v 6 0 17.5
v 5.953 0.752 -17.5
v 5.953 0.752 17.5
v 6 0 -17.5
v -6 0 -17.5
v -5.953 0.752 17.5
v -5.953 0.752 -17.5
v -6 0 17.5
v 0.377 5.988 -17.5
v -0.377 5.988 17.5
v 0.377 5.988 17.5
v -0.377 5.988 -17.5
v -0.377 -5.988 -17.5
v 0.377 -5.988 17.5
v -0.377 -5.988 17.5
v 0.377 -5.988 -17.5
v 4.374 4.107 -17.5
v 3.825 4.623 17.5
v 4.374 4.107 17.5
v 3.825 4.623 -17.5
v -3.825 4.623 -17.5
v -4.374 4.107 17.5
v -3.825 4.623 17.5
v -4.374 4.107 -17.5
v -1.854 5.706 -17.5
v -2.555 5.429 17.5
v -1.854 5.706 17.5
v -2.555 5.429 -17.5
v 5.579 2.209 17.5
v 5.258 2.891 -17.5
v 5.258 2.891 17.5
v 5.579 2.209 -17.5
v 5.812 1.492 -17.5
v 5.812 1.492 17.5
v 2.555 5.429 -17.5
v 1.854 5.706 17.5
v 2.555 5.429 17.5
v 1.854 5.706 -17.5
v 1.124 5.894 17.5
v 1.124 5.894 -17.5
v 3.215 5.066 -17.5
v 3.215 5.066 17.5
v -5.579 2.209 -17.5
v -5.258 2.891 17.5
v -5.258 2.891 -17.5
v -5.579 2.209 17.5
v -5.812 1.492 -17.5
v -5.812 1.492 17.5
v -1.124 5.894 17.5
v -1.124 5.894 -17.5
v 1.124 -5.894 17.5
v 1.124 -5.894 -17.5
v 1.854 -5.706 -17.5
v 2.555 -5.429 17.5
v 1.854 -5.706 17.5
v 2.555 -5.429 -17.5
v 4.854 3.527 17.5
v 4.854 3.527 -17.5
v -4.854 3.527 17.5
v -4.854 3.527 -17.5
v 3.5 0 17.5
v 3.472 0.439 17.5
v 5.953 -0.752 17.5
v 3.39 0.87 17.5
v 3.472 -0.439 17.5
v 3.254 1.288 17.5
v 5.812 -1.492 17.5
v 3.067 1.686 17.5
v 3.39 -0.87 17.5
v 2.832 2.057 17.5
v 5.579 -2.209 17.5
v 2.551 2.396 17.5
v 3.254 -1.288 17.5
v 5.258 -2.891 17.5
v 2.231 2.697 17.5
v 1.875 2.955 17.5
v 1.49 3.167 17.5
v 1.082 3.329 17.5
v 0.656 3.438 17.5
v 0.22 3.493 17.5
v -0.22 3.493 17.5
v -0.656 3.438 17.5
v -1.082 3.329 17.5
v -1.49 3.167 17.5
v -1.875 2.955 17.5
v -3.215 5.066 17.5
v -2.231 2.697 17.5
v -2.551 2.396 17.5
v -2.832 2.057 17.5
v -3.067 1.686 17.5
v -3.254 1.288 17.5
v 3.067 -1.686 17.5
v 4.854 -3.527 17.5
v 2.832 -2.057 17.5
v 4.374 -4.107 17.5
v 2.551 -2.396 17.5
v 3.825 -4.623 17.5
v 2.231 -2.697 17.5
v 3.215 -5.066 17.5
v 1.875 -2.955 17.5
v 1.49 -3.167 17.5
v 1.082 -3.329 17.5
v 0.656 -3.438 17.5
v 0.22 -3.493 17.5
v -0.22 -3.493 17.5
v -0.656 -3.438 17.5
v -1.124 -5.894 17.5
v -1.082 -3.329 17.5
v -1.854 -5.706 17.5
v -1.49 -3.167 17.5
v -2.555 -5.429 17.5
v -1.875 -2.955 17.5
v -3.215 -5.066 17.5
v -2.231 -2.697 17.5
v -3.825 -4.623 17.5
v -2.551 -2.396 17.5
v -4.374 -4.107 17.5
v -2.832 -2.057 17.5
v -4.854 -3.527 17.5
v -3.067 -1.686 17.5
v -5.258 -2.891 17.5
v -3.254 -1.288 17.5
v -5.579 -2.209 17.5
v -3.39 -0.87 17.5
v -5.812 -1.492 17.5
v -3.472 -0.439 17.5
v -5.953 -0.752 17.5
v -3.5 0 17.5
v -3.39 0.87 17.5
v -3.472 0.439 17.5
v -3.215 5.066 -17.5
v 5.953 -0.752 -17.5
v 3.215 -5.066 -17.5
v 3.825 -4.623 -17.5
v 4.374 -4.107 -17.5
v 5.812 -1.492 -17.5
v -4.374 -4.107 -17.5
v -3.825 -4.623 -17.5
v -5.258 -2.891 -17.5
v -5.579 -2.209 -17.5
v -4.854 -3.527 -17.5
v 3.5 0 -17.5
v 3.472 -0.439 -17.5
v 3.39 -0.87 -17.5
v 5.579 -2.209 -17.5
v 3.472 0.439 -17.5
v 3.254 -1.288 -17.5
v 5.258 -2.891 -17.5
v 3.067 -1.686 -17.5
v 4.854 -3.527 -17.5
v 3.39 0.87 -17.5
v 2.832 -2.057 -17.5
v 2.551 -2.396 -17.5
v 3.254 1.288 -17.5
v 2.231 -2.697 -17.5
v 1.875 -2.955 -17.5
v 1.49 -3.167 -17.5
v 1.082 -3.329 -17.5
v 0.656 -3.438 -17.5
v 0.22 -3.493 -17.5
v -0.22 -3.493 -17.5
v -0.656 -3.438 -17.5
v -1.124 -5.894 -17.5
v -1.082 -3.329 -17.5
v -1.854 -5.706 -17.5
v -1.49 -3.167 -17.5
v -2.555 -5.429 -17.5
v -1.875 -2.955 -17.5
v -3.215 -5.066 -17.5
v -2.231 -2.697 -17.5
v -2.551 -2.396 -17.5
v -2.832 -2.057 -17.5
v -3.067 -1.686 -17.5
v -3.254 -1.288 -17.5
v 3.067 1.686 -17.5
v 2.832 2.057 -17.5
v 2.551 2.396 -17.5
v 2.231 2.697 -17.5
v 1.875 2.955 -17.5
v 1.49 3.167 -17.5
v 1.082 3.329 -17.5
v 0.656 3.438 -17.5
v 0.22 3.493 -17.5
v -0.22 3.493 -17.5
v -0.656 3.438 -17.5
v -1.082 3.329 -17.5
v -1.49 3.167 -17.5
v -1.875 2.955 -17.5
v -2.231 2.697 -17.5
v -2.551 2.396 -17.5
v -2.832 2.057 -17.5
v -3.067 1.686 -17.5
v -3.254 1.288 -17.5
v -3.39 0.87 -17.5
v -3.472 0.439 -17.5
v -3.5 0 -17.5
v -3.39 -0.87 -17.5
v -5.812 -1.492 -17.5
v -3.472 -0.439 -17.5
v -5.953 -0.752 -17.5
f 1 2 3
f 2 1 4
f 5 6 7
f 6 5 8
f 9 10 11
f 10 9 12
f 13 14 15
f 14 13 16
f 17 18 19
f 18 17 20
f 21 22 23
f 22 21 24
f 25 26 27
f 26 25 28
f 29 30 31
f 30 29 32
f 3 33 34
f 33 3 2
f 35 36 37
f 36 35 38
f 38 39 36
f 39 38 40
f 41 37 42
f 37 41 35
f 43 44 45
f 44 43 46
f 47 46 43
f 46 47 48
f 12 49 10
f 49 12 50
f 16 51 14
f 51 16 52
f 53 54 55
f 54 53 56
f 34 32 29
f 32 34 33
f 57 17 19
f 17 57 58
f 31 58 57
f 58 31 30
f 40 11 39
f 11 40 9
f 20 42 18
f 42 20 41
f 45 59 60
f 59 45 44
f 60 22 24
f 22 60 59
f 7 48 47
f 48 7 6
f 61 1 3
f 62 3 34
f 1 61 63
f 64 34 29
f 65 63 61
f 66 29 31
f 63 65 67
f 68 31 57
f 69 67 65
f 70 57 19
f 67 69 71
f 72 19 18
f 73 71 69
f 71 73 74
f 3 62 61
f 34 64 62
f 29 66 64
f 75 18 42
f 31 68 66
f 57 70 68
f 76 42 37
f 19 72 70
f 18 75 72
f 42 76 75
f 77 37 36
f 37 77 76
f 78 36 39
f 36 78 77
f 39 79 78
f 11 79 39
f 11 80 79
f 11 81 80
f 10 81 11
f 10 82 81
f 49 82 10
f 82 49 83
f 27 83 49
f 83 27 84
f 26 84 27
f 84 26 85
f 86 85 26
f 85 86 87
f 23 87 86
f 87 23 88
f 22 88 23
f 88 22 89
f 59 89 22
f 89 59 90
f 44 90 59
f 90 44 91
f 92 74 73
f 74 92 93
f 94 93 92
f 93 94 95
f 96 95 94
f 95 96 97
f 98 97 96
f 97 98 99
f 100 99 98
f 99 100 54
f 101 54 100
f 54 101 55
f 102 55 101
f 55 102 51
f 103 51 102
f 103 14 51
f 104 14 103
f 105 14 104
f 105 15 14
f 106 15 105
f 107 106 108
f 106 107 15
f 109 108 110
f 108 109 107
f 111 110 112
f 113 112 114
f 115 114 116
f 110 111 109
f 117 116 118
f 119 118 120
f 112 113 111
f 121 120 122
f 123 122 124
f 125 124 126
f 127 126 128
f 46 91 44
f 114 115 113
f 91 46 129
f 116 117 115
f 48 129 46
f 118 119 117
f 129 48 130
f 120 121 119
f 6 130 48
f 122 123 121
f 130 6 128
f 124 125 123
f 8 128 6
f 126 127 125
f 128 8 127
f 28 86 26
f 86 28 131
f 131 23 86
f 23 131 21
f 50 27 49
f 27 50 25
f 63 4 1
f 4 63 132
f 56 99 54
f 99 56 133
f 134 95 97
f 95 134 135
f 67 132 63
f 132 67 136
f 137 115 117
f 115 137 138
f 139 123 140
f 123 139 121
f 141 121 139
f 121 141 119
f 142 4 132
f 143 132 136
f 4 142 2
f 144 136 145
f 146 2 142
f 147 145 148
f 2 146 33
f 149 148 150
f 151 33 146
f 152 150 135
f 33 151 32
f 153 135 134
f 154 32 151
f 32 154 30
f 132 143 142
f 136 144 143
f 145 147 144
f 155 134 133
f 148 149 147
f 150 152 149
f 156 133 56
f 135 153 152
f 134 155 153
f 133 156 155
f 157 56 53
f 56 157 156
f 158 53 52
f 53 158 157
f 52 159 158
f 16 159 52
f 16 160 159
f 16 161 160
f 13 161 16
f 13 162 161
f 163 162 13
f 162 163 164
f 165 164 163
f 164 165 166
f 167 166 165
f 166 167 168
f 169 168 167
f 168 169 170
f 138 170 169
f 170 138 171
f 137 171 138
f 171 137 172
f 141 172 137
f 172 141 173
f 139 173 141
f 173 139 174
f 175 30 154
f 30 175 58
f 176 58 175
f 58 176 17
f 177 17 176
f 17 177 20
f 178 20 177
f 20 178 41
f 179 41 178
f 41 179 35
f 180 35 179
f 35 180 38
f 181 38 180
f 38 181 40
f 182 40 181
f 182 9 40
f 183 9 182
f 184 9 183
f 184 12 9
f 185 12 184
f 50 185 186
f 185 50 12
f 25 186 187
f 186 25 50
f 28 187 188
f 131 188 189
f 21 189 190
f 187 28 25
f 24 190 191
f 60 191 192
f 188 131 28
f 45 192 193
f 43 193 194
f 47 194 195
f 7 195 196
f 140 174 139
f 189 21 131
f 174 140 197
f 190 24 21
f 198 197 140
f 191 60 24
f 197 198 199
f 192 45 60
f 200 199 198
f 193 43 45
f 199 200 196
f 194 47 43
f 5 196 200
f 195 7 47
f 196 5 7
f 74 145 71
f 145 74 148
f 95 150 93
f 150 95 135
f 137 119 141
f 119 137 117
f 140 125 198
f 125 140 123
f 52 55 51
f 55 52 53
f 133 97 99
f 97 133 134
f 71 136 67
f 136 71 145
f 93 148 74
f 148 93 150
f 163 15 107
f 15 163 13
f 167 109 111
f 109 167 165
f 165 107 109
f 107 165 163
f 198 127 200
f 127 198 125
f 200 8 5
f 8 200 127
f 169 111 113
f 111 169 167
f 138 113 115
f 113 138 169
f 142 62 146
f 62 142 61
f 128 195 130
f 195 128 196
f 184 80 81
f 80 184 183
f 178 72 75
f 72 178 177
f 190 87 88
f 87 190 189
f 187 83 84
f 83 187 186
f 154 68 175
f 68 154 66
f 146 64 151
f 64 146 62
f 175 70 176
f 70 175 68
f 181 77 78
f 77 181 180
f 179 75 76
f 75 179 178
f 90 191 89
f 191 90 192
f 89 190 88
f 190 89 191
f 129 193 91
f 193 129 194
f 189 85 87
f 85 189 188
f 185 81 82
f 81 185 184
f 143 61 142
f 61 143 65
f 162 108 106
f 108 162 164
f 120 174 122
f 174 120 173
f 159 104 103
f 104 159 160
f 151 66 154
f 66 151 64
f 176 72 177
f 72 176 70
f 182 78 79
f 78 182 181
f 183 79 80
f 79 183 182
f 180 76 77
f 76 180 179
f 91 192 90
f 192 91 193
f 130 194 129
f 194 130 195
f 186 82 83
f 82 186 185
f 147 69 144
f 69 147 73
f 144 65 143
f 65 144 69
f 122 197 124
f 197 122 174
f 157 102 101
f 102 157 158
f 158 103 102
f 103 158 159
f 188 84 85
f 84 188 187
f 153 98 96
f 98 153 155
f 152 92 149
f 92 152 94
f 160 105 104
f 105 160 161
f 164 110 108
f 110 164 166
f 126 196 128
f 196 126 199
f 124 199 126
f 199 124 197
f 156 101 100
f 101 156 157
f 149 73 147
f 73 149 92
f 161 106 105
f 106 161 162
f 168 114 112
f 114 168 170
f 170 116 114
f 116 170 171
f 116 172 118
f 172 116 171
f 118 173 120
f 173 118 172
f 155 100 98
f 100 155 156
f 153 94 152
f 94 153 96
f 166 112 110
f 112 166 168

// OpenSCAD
$fn = 50;


difference() {
	union() {
		translate(v = [0, 0, -17.5000000000]) {
			cylinder(h = 35, r = 6.0000000000);
		}
	}
	union() {
		translate(v = [0, 0, -100.0000000000]) {
			cylinder(h = 200, r = 3.5000000000);
		}
	}
}
